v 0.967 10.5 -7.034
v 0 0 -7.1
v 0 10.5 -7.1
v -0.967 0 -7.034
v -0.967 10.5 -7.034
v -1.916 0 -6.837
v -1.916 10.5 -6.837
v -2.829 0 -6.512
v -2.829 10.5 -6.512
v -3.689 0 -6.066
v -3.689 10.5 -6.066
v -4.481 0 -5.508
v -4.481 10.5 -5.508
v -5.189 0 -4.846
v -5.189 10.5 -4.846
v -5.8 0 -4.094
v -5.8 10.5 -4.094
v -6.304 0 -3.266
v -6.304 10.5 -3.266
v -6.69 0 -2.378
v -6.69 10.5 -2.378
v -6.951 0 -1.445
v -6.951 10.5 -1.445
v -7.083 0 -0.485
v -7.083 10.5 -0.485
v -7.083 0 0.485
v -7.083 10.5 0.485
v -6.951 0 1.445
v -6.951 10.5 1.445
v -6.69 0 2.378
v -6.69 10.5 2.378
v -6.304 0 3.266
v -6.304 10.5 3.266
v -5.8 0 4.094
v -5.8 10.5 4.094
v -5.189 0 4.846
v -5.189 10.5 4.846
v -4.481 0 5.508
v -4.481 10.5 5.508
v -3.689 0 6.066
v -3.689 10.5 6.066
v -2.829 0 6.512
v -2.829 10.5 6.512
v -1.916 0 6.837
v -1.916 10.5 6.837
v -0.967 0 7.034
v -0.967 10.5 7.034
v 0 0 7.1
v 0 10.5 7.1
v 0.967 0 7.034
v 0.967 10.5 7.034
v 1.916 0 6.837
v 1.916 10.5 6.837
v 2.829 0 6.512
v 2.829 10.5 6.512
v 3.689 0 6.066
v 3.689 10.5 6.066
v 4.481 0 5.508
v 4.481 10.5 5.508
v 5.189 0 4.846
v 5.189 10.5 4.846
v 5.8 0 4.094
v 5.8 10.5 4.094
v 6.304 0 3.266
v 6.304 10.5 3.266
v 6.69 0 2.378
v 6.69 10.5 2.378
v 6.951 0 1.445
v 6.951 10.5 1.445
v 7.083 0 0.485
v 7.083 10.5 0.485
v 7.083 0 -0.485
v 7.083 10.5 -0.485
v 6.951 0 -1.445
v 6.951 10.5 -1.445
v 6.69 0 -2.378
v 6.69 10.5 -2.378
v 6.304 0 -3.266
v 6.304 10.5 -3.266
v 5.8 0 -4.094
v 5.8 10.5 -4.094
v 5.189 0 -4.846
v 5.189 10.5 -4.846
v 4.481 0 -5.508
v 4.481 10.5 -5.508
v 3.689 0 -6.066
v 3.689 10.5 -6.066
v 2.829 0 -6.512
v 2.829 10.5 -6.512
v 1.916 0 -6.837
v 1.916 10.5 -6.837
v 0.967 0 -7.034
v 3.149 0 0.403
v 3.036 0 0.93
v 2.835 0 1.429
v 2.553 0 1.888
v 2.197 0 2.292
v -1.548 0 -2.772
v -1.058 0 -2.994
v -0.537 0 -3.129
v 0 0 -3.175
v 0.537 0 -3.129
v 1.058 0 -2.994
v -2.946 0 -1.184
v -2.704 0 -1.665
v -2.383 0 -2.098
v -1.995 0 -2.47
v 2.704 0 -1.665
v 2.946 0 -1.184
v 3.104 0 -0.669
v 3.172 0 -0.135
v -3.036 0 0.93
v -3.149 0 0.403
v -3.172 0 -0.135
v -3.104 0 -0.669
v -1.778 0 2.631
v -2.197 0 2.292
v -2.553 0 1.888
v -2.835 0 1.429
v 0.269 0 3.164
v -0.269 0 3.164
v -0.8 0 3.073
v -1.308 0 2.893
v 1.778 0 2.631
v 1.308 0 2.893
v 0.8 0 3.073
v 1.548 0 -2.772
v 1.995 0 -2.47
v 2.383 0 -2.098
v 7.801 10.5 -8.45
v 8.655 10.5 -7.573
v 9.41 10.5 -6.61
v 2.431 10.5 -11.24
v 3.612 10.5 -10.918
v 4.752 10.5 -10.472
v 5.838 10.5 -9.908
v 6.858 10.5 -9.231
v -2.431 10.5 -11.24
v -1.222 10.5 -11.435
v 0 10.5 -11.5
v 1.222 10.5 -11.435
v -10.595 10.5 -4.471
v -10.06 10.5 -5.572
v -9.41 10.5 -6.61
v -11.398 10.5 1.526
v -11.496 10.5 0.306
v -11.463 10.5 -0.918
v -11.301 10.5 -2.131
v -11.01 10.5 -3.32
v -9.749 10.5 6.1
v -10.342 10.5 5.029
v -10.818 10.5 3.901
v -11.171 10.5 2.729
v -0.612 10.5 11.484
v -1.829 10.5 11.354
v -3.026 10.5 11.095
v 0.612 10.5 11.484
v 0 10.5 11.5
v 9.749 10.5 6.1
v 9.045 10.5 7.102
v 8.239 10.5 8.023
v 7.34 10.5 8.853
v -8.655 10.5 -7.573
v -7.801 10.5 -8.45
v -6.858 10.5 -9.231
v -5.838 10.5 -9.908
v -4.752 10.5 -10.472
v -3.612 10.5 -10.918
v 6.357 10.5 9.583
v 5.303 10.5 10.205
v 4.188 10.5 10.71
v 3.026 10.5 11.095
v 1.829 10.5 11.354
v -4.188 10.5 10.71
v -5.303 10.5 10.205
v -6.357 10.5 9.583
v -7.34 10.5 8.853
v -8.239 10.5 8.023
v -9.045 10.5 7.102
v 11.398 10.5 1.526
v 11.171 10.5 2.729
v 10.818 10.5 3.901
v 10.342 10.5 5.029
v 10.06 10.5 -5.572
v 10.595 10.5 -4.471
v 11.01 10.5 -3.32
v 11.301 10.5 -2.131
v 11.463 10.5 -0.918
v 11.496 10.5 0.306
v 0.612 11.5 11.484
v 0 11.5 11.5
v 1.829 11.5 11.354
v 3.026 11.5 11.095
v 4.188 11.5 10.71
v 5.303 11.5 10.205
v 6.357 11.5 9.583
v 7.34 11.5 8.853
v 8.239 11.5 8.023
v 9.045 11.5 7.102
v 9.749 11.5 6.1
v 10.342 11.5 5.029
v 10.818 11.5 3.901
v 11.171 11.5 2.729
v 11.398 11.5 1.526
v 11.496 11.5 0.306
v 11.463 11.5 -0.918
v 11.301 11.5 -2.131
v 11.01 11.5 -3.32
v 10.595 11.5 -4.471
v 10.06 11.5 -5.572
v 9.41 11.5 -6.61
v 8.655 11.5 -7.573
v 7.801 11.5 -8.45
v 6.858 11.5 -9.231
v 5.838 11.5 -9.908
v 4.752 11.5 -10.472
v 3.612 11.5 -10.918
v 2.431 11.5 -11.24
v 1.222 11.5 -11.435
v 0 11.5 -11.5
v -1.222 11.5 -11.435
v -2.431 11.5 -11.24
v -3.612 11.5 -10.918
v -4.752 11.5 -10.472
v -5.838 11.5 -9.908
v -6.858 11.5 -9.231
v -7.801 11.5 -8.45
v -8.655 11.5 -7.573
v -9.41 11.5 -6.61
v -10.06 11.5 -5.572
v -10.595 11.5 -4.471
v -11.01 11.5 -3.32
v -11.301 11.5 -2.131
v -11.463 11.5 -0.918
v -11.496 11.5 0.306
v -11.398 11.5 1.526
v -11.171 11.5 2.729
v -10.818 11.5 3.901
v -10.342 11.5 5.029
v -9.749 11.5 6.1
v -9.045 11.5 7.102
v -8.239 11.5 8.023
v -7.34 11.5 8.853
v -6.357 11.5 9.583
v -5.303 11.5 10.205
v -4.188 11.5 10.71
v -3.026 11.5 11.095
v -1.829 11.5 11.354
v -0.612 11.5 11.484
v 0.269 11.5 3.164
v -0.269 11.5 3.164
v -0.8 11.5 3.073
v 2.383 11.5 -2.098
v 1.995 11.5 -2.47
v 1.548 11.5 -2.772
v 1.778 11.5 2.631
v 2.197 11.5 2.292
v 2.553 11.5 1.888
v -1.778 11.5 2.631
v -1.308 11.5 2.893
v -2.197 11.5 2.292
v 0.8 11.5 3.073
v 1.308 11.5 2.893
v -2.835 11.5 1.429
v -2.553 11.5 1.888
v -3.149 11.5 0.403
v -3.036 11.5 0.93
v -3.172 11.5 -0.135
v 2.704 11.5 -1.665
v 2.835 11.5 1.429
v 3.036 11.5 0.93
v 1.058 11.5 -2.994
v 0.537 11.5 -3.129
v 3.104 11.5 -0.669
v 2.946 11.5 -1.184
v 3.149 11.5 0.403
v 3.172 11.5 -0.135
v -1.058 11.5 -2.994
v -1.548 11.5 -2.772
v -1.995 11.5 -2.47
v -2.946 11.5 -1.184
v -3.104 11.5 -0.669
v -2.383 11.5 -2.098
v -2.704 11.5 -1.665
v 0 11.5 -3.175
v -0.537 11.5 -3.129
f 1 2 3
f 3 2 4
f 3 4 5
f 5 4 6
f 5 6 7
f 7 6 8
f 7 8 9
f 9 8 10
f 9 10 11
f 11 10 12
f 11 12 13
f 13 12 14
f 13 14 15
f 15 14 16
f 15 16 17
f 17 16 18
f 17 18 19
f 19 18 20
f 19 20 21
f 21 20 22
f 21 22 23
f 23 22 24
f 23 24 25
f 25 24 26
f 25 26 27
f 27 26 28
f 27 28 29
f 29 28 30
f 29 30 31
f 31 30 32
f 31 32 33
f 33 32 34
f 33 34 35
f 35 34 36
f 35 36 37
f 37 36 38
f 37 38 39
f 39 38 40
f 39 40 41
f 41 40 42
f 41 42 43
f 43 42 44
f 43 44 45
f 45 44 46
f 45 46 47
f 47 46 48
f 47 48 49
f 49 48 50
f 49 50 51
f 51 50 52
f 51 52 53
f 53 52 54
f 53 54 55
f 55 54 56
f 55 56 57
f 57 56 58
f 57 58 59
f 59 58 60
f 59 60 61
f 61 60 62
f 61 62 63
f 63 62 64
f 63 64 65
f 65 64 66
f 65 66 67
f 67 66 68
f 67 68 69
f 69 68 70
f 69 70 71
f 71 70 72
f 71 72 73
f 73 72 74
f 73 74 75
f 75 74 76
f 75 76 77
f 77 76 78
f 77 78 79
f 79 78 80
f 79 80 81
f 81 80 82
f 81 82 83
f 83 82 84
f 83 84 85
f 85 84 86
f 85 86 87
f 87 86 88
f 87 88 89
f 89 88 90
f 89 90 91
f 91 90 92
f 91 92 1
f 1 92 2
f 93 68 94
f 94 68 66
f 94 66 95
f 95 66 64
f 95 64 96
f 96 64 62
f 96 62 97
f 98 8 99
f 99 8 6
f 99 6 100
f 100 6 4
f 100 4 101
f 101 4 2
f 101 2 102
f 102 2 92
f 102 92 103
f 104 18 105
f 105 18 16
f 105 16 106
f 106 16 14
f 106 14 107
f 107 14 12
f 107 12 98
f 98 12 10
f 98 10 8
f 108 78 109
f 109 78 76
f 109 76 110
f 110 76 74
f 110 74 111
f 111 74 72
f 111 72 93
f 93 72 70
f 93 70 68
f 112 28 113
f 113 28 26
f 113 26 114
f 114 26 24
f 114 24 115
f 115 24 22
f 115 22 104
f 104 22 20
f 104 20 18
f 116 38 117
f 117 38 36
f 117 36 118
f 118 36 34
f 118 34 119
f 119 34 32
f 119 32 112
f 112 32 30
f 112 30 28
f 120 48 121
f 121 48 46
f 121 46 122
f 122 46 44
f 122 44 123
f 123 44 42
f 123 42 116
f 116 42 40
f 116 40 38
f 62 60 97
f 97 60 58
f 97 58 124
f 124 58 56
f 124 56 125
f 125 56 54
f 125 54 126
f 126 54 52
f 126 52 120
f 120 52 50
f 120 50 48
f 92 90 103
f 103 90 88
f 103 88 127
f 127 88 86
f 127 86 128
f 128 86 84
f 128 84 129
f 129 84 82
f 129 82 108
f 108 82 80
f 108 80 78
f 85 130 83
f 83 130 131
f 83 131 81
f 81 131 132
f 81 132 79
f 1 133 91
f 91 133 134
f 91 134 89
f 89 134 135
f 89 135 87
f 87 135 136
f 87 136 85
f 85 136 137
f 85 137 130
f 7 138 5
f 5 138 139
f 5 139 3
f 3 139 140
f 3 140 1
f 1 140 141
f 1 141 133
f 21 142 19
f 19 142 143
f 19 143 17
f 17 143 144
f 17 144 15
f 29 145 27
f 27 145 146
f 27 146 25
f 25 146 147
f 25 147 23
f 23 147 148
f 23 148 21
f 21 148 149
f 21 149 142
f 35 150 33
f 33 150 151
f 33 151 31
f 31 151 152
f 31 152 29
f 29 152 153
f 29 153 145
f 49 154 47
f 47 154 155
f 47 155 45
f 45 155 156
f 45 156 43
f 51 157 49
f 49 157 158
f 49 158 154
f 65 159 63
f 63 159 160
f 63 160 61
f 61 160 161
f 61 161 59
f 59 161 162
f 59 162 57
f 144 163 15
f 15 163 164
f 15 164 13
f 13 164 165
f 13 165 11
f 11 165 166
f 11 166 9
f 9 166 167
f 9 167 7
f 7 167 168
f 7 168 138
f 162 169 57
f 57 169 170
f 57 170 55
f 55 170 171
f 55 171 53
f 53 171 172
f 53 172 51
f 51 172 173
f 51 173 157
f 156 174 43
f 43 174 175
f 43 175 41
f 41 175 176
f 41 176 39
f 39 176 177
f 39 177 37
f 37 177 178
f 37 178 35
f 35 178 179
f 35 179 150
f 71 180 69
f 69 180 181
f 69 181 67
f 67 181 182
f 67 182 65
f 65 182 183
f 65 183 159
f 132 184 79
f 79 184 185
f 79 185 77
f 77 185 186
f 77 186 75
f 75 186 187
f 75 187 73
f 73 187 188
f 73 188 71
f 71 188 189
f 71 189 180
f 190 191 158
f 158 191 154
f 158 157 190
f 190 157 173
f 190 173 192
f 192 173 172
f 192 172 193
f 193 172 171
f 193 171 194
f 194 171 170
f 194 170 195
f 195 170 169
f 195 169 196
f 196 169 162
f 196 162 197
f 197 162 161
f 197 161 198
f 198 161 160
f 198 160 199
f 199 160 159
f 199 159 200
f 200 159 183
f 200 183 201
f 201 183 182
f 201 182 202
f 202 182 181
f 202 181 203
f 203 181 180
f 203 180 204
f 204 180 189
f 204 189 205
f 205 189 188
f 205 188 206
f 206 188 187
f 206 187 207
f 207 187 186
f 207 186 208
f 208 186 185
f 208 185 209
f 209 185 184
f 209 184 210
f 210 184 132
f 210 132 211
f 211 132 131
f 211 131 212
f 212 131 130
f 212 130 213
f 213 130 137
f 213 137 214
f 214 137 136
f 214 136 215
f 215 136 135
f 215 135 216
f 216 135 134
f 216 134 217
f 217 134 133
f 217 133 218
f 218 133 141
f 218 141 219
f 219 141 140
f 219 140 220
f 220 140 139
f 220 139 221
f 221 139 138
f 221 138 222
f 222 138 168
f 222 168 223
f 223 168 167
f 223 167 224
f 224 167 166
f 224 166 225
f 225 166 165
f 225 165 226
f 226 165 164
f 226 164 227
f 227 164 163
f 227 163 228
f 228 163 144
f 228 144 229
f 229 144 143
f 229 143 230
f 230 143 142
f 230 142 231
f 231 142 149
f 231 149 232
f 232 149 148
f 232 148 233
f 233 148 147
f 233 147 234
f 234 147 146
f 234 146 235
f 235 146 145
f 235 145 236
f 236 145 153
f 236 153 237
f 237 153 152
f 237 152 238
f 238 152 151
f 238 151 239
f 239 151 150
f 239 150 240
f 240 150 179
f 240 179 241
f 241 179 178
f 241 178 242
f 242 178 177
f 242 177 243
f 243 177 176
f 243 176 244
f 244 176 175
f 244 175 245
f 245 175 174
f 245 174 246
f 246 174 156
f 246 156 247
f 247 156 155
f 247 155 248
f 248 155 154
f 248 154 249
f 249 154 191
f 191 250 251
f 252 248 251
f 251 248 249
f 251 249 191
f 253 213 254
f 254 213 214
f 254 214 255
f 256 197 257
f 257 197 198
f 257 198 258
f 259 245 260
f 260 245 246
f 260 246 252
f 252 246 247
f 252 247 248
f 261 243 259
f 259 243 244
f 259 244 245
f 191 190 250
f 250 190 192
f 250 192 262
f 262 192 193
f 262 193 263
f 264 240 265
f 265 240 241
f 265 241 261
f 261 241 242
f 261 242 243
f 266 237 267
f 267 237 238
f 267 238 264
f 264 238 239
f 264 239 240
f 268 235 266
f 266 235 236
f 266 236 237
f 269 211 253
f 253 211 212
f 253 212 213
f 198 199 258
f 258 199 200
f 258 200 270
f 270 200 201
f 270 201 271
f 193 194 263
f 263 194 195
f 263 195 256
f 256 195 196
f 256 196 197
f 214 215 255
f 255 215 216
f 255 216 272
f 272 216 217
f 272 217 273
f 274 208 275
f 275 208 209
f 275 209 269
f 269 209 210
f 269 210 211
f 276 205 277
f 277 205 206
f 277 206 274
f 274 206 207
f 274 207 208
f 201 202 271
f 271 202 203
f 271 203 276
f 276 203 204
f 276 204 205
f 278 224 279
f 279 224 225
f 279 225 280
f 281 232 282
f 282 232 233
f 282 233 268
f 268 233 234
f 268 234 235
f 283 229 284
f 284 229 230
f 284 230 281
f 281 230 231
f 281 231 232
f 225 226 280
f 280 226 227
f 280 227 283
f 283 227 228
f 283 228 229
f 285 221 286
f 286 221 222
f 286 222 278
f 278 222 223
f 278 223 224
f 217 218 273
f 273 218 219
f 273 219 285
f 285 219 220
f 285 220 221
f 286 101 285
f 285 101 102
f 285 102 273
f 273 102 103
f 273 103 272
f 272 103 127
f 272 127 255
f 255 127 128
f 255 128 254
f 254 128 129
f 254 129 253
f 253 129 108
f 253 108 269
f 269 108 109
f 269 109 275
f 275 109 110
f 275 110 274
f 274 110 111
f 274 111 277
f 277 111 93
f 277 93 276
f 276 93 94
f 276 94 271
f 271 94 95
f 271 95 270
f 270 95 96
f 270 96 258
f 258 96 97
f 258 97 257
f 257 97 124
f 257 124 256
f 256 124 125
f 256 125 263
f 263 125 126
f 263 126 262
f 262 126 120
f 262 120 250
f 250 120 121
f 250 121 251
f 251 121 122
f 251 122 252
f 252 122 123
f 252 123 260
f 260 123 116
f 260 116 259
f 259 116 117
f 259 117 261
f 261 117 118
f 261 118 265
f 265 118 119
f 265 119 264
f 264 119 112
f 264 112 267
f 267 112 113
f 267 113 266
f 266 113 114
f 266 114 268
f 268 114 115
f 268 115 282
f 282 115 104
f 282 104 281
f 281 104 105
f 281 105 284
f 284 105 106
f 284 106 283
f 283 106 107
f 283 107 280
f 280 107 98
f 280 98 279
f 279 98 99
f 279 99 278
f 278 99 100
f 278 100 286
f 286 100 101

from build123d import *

# Parameters (mm, degrees)
SKETCH1_R           = 7.1
BOSS_EXTRUDE1_DEPTH = 10.5
SKETCH2_R           = 11.5
BOSS_EXTRUDE2_DEPTH = 1
SKETCH3_R           = 3.175
CUT_EXTRUDE1_DEPTH  = 12.5


with BuildPart() as part:
    # Sketch1 → Boss-Extrude1 (new body)
    with BuildSketch(Plane(origin=(0, 0, 0), x_dir=(1, 0, 0), z_dir=(0, 1, 0))):
        Circle(SKETCH1_R)
    extrude(amount=BOSS_EXTRUDE1_DEPTH)

    # Sketch2 → Boss-Extrude2 (add)
    with BuildSketch(Plane(origin=(0, 10.5, 0), x_dir=(1, 0, 0), z_dir=(0, 1, 0))):
        Circle(SKETCH2_R)
    extrude(amount=BOSS_EXTRUDE2_DEPTH)

    # Sketch3 → Cut-Extrude1 (cut, through all)
    with BuildSketch(Plane.XZ):
        Circle(SKETCH3_R)
    extrude(amount=-CUT_EXTRUDE1_DEPTH, mode=Mode.SUBTRACT)


solid = part.part
